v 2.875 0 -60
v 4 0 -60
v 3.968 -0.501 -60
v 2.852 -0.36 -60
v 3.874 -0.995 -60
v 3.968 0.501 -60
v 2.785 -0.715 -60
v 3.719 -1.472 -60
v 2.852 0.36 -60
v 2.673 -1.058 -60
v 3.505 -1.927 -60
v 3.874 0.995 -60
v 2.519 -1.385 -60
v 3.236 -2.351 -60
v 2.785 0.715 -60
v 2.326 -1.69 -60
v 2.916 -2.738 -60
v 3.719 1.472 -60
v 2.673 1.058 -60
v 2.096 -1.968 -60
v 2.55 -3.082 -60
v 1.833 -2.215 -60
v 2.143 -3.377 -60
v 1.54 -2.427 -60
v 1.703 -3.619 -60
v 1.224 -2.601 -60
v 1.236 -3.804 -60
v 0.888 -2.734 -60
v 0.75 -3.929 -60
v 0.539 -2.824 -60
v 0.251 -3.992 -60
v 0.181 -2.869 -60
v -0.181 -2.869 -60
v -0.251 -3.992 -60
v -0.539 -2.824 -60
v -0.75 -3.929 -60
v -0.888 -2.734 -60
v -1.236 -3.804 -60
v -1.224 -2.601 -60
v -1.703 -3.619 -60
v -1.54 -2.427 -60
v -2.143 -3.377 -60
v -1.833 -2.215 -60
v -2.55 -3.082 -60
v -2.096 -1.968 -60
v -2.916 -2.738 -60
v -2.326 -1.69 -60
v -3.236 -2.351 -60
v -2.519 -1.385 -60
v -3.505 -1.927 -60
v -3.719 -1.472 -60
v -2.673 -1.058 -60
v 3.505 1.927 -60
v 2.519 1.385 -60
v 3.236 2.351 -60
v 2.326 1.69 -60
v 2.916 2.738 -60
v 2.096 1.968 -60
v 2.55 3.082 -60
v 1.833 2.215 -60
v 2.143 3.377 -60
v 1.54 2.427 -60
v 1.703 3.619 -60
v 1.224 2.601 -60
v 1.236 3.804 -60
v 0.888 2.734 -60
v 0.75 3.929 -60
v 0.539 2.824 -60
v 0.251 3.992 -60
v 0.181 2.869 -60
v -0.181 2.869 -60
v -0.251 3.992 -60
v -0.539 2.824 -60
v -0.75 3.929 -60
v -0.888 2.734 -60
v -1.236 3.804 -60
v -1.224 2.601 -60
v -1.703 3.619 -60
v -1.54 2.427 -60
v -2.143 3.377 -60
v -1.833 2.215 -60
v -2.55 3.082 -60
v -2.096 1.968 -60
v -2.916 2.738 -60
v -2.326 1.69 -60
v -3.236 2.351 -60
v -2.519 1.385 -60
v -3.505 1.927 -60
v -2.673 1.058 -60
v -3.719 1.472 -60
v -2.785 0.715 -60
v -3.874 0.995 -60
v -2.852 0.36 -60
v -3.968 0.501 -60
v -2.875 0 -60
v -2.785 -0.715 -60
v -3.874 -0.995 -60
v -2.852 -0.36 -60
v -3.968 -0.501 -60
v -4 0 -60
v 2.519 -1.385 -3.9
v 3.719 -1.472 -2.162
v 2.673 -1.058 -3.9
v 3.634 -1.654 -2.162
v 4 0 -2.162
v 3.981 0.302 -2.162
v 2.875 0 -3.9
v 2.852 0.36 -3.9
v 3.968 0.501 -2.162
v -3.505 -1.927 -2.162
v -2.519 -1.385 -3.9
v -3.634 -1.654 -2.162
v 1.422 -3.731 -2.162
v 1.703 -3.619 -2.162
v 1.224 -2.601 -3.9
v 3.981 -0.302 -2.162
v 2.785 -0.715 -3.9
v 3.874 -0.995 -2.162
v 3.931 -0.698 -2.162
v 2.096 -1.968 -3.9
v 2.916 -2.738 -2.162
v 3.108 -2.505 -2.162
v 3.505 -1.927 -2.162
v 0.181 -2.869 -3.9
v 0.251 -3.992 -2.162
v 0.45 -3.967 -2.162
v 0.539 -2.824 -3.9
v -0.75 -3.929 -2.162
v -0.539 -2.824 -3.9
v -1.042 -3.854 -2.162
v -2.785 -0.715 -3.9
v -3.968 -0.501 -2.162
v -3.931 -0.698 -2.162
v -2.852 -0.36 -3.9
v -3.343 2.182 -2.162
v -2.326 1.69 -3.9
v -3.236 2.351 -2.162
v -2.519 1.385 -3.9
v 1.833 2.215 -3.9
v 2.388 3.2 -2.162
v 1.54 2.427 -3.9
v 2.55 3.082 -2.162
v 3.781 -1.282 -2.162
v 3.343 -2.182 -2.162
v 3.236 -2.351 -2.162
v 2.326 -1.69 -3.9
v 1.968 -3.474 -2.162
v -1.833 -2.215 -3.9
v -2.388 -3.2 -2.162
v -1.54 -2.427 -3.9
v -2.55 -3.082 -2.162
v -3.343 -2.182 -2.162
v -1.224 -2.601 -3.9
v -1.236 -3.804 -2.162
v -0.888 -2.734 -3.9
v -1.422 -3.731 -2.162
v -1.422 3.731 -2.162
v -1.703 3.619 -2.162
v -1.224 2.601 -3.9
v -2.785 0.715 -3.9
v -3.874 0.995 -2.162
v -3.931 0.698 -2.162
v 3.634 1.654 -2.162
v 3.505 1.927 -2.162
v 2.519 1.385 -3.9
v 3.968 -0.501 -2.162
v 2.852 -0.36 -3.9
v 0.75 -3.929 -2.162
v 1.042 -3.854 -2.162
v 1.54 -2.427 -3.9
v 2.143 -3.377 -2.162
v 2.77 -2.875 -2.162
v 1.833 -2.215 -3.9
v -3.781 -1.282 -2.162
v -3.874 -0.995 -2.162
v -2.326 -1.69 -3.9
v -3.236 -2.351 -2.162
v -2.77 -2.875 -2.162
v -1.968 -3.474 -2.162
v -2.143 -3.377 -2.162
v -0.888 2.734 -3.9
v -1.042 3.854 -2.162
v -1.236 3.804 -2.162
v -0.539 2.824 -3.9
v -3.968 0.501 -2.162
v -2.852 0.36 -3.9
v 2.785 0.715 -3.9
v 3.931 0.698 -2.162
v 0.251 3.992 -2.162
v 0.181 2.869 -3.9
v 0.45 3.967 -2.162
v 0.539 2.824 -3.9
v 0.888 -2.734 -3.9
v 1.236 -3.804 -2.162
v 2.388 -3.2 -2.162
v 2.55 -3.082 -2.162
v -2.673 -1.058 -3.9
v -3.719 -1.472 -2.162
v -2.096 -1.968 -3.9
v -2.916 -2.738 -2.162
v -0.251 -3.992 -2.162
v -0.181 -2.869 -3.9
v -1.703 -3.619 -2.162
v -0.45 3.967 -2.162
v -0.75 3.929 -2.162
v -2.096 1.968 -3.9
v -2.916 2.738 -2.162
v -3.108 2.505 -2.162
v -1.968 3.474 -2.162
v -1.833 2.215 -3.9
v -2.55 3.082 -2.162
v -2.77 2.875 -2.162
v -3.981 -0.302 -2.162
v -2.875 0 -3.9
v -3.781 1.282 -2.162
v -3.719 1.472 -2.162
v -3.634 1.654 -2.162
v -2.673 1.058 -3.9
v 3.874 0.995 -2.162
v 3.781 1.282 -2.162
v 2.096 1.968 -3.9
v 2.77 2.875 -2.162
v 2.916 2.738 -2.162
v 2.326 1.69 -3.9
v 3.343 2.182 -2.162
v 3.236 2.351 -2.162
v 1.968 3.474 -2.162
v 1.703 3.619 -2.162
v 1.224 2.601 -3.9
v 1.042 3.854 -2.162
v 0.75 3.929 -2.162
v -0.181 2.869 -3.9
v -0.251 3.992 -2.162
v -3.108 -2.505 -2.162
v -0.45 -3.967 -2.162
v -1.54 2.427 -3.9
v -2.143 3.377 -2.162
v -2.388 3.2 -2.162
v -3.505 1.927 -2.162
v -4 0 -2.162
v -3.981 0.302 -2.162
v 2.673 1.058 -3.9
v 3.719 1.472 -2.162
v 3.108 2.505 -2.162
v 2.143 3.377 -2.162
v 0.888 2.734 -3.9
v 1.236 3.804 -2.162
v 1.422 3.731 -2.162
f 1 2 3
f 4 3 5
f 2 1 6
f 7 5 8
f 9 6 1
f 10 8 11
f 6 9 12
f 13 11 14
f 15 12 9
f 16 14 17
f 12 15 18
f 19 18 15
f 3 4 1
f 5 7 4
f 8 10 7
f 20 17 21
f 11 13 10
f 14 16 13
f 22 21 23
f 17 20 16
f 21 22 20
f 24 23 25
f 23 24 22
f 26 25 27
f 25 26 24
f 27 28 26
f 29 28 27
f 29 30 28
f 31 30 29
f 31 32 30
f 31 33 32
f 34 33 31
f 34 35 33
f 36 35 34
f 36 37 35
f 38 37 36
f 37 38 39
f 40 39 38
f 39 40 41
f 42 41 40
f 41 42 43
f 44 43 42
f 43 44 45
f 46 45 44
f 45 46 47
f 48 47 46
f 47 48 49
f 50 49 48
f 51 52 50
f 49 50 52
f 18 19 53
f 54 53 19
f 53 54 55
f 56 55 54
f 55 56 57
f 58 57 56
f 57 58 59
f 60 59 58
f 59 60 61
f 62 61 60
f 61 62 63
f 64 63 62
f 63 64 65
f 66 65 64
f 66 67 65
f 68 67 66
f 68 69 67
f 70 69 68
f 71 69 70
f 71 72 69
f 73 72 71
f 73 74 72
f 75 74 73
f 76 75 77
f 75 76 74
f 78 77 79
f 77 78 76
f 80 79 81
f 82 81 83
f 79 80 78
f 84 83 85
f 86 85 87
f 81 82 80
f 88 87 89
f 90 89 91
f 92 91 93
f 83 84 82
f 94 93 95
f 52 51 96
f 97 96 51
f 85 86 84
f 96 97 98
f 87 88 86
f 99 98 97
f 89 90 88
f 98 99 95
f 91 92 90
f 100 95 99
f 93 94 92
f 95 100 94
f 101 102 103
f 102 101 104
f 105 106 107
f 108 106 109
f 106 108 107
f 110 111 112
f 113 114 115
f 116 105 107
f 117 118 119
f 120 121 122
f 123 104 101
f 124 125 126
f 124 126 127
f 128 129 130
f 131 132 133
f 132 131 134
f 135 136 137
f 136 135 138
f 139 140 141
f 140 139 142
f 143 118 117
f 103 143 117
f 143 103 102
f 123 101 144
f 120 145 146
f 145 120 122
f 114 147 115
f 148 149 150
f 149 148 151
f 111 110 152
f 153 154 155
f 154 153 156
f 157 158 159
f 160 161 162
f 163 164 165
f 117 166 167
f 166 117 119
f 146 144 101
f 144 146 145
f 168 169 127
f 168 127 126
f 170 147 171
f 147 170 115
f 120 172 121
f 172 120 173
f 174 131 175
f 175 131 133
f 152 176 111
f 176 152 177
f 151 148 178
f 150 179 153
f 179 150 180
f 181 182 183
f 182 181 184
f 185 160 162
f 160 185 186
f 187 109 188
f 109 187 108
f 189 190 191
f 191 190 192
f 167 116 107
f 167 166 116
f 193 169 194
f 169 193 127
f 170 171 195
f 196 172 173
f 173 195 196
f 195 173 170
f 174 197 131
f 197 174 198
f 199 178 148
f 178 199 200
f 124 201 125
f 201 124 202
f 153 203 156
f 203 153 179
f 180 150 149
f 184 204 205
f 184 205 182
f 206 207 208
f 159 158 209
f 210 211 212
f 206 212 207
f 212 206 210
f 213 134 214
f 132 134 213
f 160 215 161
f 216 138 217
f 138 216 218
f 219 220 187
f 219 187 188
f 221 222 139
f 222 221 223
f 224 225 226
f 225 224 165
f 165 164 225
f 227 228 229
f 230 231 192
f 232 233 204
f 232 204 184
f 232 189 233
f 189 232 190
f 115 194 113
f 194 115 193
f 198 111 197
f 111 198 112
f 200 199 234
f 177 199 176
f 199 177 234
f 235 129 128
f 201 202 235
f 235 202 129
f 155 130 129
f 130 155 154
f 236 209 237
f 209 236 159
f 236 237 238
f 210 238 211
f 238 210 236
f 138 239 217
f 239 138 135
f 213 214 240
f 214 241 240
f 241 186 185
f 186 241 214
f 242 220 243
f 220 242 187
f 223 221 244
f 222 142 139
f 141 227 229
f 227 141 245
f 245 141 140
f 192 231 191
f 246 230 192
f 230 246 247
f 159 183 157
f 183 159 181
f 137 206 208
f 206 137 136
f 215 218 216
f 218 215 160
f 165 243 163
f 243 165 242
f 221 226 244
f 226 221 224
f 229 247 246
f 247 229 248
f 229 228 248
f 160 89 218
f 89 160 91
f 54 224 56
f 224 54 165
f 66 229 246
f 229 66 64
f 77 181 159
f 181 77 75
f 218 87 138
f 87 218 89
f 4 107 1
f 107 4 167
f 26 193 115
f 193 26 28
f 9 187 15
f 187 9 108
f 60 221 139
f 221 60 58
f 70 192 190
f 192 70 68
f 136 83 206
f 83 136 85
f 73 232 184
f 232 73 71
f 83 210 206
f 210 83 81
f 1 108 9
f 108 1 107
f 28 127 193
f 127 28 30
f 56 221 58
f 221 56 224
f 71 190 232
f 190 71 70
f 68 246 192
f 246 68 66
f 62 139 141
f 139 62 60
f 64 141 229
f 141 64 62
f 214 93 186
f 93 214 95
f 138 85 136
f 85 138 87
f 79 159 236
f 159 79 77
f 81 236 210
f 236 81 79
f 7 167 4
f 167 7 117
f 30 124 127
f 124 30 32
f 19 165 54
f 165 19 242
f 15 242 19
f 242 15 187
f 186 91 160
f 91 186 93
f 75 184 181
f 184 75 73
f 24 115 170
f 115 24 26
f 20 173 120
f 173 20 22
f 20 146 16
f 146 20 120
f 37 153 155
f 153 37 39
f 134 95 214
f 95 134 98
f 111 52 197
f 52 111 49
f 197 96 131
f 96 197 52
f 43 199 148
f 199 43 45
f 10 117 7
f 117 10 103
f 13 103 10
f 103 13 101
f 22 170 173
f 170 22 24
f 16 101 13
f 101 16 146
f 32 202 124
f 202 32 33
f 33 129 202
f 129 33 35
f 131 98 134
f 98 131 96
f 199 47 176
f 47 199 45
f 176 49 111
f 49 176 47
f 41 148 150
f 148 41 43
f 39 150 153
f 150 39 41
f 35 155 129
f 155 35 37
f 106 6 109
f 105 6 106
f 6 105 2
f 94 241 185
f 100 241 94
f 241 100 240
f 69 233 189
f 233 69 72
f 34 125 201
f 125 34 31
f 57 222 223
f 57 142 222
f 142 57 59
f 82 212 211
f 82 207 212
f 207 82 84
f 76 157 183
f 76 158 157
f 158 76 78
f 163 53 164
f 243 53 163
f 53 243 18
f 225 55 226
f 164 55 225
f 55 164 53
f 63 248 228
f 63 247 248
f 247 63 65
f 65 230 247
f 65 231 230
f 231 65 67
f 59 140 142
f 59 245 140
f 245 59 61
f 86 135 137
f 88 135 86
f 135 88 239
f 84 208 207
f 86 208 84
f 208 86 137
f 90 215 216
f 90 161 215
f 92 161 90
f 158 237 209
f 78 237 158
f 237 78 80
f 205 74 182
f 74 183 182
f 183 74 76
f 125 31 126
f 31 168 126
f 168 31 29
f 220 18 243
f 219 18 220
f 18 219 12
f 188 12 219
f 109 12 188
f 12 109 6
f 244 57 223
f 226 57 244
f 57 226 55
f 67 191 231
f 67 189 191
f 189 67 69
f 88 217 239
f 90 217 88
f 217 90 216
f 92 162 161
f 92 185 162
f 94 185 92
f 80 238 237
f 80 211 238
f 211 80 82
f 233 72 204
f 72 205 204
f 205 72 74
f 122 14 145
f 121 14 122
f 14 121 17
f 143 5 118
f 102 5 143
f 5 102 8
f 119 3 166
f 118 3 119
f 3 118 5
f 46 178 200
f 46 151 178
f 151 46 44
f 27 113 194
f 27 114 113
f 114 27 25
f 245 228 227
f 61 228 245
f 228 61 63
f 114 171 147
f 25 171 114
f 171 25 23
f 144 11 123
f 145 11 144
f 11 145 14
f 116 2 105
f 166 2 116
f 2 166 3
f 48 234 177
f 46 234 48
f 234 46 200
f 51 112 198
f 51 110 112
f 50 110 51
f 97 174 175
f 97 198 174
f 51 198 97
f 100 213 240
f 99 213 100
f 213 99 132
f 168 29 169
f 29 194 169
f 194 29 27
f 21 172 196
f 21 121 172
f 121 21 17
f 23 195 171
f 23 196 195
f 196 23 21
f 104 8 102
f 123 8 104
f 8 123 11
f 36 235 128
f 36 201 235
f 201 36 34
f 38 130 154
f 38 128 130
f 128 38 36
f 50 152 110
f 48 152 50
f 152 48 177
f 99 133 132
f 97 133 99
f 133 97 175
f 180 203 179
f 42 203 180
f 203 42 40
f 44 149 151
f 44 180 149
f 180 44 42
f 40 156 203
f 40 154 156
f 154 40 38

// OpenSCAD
$fn = 50;


difference() {
	union() {
		translate(v = [0, 0, -60.0000000000]) {
			cylinder(h = 60, r = 4.0000000000);
		}
		cylinder(h = 0, r = 7.0000000000);
	}
	union() {
		translate(v = [0, 0, 0]) {
			rotate(a = [0, 0, 0]) {
				difference() {
					union() {
						#translate(v = [0, 0, -60.0000000000]) {
							cylinder(h = 60, r = 2.6000000000);
						}
						#translate(v = [0, 0, -3.9000000000]) {
							cylinder(h = 3.9000000000, r = 4.0000000000, r1 = 2.8750000000, r2 = 5.4000000000);
						}
						#translate(v = [0, 0, -60.0000000000]) {
							cylinder(h = 60, r = 2.8750000000);
						}
						#translate(v = [0, 0, -60.0000000000]) {
							cylinder(h = 60, r = 2.6000000000);
						}
					}
					union();
				}
			}
		}
	}
}
